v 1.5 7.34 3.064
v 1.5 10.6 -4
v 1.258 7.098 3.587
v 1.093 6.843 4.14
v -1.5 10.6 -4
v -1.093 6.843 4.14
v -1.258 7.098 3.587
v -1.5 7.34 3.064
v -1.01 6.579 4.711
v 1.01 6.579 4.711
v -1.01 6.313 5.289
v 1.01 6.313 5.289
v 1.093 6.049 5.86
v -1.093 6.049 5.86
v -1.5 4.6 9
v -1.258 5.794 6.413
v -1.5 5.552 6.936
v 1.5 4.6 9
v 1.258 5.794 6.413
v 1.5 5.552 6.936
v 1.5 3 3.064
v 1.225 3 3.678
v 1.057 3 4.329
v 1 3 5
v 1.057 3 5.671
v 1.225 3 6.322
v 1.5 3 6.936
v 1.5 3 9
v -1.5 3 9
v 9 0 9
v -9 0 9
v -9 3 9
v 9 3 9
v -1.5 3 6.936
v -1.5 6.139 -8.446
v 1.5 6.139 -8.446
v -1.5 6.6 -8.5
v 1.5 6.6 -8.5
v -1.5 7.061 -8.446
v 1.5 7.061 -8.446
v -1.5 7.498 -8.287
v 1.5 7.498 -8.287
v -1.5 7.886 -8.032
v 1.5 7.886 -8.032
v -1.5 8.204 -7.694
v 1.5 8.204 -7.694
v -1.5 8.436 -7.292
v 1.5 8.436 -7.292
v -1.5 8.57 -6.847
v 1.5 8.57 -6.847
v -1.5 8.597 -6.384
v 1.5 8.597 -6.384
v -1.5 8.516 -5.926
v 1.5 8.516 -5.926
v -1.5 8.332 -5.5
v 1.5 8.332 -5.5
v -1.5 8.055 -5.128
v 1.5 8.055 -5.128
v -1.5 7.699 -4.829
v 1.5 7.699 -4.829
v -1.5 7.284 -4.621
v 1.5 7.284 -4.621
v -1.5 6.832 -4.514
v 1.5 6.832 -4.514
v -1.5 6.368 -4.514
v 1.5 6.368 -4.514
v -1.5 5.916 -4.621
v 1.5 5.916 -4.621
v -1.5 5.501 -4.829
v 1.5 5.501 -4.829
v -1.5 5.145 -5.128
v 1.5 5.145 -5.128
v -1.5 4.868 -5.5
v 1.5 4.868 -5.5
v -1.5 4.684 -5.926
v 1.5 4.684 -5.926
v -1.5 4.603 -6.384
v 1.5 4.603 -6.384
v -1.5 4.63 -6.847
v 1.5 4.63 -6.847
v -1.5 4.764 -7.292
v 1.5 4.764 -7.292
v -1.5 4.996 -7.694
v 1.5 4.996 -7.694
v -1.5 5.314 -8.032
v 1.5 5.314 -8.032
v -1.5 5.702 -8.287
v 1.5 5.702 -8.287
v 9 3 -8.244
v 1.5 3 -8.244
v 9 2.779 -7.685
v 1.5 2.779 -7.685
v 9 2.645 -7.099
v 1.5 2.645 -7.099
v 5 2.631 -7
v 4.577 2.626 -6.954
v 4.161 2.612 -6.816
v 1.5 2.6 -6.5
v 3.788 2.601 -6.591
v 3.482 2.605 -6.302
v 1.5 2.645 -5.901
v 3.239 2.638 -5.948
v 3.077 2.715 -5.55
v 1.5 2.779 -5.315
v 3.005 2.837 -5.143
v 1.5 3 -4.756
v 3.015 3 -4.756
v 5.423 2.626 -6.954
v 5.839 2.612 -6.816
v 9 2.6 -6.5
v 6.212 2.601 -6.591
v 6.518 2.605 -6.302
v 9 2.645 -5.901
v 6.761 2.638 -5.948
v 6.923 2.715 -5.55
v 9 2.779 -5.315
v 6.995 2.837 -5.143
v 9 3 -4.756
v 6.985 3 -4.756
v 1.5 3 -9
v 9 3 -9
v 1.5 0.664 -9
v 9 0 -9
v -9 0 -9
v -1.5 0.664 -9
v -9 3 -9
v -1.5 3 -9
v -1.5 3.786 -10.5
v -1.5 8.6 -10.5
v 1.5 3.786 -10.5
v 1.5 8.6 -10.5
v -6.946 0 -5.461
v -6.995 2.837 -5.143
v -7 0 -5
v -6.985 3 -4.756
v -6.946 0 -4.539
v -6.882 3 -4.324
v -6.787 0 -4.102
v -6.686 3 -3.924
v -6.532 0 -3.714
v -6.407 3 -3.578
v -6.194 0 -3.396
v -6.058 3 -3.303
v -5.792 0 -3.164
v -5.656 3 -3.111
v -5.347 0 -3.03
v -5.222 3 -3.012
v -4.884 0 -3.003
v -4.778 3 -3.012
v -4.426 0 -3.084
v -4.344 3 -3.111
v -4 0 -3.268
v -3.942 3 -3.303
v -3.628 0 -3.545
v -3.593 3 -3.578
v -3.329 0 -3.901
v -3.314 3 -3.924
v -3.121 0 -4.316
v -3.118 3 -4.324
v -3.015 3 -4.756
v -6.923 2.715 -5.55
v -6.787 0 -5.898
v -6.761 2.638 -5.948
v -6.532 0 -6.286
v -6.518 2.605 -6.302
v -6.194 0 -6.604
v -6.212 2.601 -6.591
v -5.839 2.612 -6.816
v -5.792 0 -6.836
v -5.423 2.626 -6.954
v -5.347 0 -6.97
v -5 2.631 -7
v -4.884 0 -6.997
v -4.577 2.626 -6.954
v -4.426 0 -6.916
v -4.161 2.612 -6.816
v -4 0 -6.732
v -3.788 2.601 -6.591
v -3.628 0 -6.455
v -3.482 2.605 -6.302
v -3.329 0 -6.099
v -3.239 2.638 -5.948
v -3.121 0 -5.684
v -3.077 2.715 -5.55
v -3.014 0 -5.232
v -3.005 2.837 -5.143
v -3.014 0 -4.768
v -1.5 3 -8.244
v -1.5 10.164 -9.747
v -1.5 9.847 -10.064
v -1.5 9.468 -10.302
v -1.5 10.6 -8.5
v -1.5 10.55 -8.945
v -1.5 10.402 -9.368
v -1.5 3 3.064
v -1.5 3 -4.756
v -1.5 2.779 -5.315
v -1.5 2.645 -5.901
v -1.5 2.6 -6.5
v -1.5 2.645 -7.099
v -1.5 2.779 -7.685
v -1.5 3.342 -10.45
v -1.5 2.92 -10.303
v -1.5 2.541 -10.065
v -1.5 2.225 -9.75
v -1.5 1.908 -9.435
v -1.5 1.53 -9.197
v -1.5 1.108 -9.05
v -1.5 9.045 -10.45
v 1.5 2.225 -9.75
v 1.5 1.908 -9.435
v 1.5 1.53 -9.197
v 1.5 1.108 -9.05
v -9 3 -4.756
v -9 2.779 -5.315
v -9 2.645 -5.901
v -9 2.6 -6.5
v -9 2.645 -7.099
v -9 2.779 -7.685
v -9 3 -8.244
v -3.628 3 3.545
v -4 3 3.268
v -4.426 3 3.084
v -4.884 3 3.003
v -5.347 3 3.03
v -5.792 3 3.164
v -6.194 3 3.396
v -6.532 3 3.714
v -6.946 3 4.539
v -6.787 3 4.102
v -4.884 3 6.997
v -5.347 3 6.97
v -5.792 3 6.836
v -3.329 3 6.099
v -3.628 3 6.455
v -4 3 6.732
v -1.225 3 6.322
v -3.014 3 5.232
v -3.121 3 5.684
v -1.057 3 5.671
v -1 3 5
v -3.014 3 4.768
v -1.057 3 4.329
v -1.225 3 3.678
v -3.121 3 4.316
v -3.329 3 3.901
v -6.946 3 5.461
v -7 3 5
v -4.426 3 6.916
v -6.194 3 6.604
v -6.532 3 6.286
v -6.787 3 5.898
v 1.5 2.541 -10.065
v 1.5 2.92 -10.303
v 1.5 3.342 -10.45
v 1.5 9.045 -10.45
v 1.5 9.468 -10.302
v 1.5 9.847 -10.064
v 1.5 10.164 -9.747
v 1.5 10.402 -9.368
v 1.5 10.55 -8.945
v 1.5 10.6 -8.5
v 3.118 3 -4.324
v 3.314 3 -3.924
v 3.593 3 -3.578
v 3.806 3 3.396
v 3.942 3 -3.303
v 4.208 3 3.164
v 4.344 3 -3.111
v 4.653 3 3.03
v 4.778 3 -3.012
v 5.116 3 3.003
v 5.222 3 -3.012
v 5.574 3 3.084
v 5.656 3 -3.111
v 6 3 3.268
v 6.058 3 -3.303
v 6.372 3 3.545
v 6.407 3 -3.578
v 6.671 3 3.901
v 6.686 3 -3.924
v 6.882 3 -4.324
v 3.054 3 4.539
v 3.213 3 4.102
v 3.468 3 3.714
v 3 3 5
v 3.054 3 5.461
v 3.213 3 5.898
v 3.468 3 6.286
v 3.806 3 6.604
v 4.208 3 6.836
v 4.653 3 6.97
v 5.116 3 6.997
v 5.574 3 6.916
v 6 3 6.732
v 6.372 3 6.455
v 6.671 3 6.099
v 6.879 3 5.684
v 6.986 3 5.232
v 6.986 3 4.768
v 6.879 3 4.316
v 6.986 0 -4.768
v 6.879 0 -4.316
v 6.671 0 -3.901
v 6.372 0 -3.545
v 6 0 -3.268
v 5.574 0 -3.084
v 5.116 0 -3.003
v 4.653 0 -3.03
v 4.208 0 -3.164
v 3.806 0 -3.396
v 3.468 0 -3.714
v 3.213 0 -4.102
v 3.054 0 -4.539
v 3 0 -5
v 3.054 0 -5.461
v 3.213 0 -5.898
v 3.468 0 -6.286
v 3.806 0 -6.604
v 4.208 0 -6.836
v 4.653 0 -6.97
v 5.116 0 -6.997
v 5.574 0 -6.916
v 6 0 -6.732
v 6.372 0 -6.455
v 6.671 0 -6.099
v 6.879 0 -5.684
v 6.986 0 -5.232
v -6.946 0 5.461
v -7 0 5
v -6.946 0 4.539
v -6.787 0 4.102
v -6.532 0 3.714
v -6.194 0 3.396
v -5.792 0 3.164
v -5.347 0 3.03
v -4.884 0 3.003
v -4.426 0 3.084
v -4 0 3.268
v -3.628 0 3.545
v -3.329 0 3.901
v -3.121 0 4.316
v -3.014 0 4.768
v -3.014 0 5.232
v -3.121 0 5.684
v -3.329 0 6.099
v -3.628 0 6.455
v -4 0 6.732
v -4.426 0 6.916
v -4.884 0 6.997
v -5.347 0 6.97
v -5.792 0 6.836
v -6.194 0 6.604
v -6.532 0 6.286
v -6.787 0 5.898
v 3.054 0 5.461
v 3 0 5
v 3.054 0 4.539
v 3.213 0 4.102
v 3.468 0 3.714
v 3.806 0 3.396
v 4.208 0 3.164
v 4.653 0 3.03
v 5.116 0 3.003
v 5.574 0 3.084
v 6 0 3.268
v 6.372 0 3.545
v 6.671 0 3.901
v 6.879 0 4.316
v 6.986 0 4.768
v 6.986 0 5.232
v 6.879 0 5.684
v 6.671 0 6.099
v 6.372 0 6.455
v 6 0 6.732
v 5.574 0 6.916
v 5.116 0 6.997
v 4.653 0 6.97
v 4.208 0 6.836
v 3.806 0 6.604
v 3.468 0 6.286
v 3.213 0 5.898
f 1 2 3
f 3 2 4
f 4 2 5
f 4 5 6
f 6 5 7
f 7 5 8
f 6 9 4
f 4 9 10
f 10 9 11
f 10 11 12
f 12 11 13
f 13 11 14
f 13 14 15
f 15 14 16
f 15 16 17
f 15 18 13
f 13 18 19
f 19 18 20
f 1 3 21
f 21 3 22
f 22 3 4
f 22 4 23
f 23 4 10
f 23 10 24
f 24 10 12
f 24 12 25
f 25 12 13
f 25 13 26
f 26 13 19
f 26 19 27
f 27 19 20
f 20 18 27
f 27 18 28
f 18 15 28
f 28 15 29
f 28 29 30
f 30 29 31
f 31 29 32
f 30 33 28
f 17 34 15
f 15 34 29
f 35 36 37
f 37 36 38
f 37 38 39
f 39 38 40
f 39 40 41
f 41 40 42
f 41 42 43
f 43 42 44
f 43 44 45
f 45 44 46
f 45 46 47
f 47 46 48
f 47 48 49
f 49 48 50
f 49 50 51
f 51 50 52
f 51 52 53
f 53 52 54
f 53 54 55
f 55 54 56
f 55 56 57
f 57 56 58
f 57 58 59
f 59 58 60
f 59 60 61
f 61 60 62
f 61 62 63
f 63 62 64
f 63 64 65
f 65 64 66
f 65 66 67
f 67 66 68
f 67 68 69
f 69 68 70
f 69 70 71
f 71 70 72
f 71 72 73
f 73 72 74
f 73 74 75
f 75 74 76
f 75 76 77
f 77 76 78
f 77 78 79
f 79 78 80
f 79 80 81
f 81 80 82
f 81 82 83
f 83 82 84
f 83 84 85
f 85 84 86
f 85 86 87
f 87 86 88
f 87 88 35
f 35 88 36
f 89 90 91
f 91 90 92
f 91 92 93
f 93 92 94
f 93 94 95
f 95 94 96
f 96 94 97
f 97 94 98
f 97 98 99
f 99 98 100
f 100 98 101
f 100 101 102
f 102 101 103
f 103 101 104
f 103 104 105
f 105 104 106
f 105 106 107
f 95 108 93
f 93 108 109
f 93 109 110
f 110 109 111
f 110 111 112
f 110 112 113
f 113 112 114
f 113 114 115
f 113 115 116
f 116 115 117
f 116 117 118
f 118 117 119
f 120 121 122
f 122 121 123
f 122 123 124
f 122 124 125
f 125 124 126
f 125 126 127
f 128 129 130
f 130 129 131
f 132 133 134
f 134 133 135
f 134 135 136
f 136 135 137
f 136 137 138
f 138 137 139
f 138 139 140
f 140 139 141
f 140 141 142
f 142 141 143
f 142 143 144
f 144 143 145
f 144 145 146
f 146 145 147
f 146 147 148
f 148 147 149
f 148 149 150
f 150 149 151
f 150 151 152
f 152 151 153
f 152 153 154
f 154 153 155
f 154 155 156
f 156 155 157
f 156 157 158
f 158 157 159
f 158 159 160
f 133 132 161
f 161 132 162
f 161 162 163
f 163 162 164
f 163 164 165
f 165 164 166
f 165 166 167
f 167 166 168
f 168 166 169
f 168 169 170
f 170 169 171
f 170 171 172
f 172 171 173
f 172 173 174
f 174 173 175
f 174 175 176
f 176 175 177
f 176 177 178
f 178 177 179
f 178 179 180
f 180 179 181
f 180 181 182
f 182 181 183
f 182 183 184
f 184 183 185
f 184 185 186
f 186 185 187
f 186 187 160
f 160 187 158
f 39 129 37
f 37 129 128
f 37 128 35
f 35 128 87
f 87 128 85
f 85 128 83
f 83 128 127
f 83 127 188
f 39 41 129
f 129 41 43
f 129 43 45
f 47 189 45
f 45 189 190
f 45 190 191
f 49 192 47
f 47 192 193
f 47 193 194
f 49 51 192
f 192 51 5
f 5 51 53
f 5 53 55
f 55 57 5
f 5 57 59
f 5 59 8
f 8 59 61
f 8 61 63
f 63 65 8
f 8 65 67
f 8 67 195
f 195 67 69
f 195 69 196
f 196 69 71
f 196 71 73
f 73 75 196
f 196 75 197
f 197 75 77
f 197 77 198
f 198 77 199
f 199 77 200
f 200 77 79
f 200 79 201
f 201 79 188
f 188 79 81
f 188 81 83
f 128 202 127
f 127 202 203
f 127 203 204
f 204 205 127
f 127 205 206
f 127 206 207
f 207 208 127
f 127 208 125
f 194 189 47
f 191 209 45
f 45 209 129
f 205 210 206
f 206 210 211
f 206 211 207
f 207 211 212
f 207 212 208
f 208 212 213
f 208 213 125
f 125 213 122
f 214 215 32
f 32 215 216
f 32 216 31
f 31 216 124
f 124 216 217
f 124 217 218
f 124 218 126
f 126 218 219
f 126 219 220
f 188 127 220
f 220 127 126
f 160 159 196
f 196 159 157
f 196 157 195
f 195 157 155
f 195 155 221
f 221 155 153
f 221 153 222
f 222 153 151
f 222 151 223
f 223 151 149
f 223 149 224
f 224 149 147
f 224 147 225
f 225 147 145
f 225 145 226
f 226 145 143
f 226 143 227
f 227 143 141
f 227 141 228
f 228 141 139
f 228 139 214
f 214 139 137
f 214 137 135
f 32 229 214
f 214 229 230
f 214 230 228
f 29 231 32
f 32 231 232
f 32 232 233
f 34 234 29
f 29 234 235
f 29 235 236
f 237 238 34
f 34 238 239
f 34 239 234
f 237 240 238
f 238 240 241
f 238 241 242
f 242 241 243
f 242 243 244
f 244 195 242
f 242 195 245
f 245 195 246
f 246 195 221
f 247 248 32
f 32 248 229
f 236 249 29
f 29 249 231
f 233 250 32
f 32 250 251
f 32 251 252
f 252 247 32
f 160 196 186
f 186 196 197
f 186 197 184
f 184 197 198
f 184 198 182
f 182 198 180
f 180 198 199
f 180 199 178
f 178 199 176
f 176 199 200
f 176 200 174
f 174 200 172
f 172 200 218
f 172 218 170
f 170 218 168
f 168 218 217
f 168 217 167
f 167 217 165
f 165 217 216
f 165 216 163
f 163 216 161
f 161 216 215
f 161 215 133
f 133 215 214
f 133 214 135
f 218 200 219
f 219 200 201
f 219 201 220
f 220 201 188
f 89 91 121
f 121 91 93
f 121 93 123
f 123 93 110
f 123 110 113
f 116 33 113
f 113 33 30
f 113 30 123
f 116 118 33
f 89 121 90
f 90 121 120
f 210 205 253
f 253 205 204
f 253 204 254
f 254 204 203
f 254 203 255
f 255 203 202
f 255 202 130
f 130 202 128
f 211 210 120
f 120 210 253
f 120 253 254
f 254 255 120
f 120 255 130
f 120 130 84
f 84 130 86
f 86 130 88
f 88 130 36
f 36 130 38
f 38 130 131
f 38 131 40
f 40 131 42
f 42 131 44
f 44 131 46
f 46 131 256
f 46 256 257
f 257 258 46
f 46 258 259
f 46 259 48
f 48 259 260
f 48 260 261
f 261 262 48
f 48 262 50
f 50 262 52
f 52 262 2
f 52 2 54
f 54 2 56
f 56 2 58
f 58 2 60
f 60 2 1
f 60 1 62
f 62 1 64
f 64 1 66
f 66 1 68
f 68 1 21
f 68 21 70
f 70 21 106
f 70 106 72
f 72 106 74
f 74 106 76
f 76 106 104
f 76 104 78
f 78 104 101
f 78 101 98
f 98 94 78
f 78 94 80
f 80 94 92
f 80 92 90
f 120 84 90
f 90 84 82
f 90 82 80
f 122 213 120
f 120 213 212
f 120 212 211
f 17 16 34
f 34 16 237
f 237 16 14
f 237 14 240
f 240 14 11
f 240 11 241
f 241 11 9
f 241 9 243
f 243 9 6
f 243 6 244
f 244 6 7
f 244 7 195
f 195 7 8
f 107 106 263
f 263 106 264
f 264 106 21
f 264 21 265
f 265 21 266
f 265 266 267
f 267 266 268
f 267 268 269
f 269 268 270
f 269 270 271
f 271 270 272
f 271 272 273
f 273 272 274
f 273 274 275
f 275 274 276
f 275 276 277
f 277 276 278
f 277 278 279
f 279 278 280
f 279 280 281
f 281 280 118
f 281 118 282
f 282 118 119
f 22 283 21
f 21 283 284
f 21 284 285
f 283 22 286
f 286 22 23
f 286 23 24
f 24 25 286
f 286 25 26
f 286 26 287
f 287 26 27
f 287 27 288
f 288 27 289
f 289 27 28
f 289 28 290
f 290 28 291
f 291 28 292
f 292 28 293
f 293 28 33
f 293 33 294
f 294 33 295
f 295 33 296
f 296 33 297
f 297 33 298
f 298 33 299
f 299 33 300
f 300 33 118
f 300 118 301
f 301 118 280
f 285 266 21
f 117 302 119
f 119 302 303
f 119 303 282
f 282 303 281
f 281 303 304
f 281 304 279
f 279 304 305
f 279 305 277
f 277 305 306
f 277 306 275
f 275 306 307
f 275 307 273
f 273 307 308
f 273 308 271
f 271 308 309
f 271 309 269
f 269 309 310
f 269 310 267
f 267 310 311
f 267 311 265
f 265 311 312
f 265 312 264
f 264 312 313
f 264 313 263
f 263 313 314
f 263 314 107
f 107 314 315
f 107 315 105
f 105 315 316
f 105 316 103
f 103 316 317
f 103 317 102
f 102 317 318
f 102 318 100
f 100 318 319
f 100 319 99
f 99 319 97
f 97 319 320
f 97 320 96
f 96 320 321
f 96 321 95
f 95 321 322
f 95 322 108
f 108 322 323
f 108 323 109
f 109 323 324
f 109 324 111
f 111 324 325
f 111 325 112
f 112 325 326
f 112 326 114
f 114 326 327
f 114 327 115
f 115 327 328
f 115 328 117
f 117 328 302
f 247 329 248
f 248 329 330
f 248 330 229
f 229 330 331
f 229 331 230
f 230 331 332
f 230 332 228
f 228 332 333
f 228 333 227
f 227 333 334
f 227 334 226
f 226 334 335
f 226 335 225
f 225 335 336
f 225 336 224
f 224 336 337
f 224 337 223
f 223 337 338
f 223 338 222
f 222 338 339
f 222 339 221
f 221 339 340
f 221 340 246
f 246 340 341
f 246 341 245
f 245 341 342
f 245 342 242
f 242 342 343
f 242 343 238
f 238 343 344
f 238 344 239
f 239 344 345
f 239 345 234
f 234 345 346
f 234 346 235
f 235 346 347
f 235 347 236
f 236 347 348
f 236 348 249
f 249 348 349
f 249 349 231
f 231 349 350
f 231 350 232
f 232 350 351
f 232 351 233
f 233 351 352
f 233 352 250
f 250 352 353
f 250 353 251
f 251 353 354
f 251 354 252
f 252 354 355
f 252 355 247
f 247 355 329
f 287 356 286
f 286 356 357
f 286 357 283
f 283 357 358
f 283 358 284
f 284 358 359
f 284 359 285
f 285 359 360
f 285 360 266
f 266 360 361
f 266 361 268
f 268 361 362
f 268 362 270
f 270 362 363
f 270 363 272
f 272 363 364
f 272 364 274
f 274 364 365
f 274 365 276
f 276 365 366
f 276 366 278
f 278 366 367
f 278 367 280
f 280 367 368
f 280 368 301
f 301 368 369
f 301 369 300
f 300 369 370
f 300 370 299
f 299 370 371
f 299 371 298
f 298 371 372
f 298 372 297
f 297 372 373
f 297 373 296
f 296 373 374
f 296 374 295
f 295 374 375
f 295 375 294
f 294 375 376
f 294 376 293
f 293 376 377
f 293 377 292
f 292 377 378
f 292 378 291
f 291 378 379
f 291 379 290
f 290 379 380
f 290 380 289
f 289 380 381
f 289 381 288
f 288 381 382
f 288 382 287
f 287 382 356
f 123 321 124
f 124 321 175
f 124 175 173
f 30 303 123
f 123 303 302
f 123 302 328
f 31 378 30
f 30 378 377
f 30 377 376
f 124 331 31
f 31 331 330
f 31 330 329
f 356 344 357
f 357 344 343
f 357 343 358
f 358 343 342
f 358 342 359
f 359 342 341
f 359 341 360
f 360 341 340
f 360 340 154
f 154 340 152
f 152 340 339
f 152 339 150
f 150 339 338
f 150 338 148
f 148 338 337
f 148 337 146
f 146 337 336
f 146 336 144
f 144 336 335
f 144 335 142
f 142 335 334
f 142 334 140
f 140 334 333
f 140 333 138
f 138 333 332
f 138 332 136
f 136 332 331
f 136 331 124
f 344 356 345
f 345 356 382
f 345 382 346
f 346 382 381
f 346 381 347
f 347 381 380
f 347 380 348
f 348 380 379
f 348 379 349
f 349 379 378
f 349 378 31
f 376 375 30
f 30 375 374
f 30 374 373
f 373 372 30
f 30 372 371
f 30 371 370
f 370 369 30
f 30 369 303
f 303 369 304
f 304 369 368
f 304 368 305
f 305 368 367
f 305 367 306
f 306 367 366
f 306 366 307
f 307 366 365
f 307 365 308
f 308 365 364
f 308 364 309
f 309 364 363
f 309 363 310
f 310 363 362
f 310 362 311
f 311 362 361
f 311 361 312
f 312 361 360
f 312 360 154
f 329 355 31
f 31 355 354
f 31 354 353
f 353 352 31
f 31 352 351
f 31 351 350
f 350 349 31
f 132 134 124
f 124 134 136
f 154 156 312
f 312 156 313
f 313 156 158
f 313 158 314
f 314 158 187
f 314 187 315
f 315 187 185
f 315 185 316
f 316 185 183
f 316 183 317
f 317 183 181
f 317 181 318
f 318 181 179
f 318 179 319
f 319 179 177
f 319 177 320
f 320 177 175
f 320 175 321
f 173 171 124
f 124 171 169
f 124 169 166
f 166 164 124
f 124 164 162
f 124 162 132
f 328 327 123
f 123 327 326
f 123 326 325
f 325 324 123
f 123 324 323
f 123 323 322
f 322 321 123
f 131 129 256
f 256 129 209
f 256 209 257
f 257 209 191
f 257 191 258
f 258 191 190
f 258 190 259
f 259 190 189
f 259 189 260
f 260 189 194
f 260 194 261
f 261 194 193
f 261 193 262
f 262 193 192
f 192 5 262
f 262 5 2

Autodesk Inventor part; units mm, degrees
ref_plane "YZ Plane" through (0, 0, 0) normal (1, 0, 0) x (0, 1, 0)
ref_plane "XZ Plane" through (0, 0, 0) normal (0, 1, 0) x (-1, 0, 0)
ref_plane "XY Plane" through (0, 0, 0) normal (0, 0, 1) x (1, 0, 0)
sketch "Sketch1" plane through (0, 0, 0) normal (0, 1, 0) x (-1, 0, 0)
  line L0 (-5, 5) -> (5, 5)
  line L1 (5, 5) -> (5, -5)
  line L2 (5, -5) -> (-5, -5)
  line L3 (-5, -5) -> (-5, 5)
  line L4 (-5, 5) -> (5, -5) construction
  line L5 (5, 5) -> (-5, -5) construction
  line L6 (-9, 9) -> (9, 9)
  line L7 (9, 9) -> (9, -9)
  line L8 (9, -9) -> (-9, -9)
  line L9 (-9, -9) -> (-9, 9)
  line L10 (-9, 9) -> (9, -9) construction
  line L11 (9, 9) -> (-9, -9) construction
  circle A0 centre (5, 5) radius 2
  circle A1 centre (-5, 5) radius 2
  circle A2 centre (5, -5) radius 2
  circle A3 centre (-5, -5) radius 2
  point P0 (0, 0)
  dimension "d0" = 10
  dimension "d1" = 10
  dimension "d2" = 18
  dimension "d3" = 18
  dimension "d4" = 4
  dimension "d5" = 4
  dimension "d6" = 4
  dimension "d7" = 4
extrude "Extrusion1" add sketch "Sketch1" along normal blind 3 contours L0 A0 L1 A2 L2 A3 L3 A1 | L6 L7 L8 L9
sketch "Sketch2" plane through (0, 3, 0) normal (0, 1, 0) x (1, 0, 0)
  line L0 (9, 9) -> (-9, 9) projected
  line L1 (1.5, -9) -> (-1.5, -9)
  line L2 (-1.5, -9) -> (-1.5, 9)
  line L3 (-1.5, 9) -> (1.5, 9)
  line L4 (1.5, 9) -> (1.5, -9)
  line L5 (1.5, -9) -> (-1.5, 9) construction
  line L6 (-1.5, -9) -> (1.5, 9) construction
  circle A0 centre (-5, -5) radius 2 projected
  circle A1 centre (-5, -5) radius 4
  circle A2 centre (-5, 5) radius 2 projected
  circle A3 centre (-5, 5) radius 4
  circle A4 centre (5, -5) radius 2 projected
  circle A5 centre (5, -5) radius 4
  circle A6 centre (5, 5) radius 2 projected
  circle A7 centre (5, 5) radius 4
  point P0 (0, 0)
  point P1 (1.5, -6.9365)
  point P2 (1.5, -3.0635)
  point P3 (1.5, 3.0635)
  point P4 (1.5, 6.9365)
  point P5 (-1.5, 6.9365)
  point P6 (-1.5, 3.0635)
  point P7 (-1.5, -3.0635)
  point P8 (-1.5, -6.9365)
  dimension "d10" = 3
  dimension "d11" = 8
  dimension "d12" = 8
  dimension "d13" = 8
  dimension "d14" = 8
extrude "Extrusion2" add sketch "Sketch2" along normal blind 7.6 contours L4 A7 A5 L1 L2 A1 A3 L0
sketch "Sketch3" plane through (1.5, 3, 9) normal (1, 0, 0) x (0, 0, -1)
  line L0 (0, -3) -> (0, 0) projected
  line L1 (0, -3) -> (0, 3.6)
  line L2 (0, 3.6) -> (18, 3.6)
  line L3 (18, 0) -> (18, 7.6) projected
  line L4 (18, 3.6) -> (15.5, 3.6)
  circle A0 centre (15.5, 3.6) radius 2
  circle A1 centre (15.5, 3.6) radius 4
  line L5 (19.5, -0.4) -> (11.5, -0.4)
  line L6 (11.5, -0.4) -> (11.5, 7.6)
  line L7 (11.5, 7.6) -> (19.5, 7.6)
  line L8 (19.5, 7.6) -> (19.5, -0.4)
  line L9 (19.5, -0.4) -> (11.5, 7.6) construction
  line L10 (11.5, -0.4) -> (19.5, 7.6) construction
  point P0 (9, -3)
  dimension "d17" = 6.6
  dimension "d18" = 2.5
  dimension "d19" = 4
  dimension "d20" = 8
extrude "Extrusion3" add sketch "Sketch3" against normal up to surface (3 mm away)
extrude "Extrusion4" cut sketch "Sketch3" against normal blind 10 contours L2 A0 | L2 A0
extrude "Extrusion5" cut sketch "Sketch3" along normal blind 10 contours L2 A0 | L2 A0 | A0 L2 A1 L3 | L2 L3 A1 A0 | L3 A1
extrude "Extrusion6" cut sketch "Sketch3" against normal blind 20 contours L2 A0 | L2 A0 | A0 L2 A1 L3 | L2 L3 A1 A0 | L3 A1
extrude "Extrusion7" add sketch "Sketch3" against normal up to surface (3 mm away) contours A0 L2 A1 L3 | L2 L3 A1 A0 | L3 A1
chamfer "Chamfer1" distance 13 distance2 6 1 edges at (0, 10.6, 9) measured on face at (-0.5, 10.6, -5.9788)
fillet "Fillet1" radius 2 3 edges at (0, 10.6, -10.5) (0, 2.6, -10.5) (0, 2.6, -9)
properties part number "link2"
